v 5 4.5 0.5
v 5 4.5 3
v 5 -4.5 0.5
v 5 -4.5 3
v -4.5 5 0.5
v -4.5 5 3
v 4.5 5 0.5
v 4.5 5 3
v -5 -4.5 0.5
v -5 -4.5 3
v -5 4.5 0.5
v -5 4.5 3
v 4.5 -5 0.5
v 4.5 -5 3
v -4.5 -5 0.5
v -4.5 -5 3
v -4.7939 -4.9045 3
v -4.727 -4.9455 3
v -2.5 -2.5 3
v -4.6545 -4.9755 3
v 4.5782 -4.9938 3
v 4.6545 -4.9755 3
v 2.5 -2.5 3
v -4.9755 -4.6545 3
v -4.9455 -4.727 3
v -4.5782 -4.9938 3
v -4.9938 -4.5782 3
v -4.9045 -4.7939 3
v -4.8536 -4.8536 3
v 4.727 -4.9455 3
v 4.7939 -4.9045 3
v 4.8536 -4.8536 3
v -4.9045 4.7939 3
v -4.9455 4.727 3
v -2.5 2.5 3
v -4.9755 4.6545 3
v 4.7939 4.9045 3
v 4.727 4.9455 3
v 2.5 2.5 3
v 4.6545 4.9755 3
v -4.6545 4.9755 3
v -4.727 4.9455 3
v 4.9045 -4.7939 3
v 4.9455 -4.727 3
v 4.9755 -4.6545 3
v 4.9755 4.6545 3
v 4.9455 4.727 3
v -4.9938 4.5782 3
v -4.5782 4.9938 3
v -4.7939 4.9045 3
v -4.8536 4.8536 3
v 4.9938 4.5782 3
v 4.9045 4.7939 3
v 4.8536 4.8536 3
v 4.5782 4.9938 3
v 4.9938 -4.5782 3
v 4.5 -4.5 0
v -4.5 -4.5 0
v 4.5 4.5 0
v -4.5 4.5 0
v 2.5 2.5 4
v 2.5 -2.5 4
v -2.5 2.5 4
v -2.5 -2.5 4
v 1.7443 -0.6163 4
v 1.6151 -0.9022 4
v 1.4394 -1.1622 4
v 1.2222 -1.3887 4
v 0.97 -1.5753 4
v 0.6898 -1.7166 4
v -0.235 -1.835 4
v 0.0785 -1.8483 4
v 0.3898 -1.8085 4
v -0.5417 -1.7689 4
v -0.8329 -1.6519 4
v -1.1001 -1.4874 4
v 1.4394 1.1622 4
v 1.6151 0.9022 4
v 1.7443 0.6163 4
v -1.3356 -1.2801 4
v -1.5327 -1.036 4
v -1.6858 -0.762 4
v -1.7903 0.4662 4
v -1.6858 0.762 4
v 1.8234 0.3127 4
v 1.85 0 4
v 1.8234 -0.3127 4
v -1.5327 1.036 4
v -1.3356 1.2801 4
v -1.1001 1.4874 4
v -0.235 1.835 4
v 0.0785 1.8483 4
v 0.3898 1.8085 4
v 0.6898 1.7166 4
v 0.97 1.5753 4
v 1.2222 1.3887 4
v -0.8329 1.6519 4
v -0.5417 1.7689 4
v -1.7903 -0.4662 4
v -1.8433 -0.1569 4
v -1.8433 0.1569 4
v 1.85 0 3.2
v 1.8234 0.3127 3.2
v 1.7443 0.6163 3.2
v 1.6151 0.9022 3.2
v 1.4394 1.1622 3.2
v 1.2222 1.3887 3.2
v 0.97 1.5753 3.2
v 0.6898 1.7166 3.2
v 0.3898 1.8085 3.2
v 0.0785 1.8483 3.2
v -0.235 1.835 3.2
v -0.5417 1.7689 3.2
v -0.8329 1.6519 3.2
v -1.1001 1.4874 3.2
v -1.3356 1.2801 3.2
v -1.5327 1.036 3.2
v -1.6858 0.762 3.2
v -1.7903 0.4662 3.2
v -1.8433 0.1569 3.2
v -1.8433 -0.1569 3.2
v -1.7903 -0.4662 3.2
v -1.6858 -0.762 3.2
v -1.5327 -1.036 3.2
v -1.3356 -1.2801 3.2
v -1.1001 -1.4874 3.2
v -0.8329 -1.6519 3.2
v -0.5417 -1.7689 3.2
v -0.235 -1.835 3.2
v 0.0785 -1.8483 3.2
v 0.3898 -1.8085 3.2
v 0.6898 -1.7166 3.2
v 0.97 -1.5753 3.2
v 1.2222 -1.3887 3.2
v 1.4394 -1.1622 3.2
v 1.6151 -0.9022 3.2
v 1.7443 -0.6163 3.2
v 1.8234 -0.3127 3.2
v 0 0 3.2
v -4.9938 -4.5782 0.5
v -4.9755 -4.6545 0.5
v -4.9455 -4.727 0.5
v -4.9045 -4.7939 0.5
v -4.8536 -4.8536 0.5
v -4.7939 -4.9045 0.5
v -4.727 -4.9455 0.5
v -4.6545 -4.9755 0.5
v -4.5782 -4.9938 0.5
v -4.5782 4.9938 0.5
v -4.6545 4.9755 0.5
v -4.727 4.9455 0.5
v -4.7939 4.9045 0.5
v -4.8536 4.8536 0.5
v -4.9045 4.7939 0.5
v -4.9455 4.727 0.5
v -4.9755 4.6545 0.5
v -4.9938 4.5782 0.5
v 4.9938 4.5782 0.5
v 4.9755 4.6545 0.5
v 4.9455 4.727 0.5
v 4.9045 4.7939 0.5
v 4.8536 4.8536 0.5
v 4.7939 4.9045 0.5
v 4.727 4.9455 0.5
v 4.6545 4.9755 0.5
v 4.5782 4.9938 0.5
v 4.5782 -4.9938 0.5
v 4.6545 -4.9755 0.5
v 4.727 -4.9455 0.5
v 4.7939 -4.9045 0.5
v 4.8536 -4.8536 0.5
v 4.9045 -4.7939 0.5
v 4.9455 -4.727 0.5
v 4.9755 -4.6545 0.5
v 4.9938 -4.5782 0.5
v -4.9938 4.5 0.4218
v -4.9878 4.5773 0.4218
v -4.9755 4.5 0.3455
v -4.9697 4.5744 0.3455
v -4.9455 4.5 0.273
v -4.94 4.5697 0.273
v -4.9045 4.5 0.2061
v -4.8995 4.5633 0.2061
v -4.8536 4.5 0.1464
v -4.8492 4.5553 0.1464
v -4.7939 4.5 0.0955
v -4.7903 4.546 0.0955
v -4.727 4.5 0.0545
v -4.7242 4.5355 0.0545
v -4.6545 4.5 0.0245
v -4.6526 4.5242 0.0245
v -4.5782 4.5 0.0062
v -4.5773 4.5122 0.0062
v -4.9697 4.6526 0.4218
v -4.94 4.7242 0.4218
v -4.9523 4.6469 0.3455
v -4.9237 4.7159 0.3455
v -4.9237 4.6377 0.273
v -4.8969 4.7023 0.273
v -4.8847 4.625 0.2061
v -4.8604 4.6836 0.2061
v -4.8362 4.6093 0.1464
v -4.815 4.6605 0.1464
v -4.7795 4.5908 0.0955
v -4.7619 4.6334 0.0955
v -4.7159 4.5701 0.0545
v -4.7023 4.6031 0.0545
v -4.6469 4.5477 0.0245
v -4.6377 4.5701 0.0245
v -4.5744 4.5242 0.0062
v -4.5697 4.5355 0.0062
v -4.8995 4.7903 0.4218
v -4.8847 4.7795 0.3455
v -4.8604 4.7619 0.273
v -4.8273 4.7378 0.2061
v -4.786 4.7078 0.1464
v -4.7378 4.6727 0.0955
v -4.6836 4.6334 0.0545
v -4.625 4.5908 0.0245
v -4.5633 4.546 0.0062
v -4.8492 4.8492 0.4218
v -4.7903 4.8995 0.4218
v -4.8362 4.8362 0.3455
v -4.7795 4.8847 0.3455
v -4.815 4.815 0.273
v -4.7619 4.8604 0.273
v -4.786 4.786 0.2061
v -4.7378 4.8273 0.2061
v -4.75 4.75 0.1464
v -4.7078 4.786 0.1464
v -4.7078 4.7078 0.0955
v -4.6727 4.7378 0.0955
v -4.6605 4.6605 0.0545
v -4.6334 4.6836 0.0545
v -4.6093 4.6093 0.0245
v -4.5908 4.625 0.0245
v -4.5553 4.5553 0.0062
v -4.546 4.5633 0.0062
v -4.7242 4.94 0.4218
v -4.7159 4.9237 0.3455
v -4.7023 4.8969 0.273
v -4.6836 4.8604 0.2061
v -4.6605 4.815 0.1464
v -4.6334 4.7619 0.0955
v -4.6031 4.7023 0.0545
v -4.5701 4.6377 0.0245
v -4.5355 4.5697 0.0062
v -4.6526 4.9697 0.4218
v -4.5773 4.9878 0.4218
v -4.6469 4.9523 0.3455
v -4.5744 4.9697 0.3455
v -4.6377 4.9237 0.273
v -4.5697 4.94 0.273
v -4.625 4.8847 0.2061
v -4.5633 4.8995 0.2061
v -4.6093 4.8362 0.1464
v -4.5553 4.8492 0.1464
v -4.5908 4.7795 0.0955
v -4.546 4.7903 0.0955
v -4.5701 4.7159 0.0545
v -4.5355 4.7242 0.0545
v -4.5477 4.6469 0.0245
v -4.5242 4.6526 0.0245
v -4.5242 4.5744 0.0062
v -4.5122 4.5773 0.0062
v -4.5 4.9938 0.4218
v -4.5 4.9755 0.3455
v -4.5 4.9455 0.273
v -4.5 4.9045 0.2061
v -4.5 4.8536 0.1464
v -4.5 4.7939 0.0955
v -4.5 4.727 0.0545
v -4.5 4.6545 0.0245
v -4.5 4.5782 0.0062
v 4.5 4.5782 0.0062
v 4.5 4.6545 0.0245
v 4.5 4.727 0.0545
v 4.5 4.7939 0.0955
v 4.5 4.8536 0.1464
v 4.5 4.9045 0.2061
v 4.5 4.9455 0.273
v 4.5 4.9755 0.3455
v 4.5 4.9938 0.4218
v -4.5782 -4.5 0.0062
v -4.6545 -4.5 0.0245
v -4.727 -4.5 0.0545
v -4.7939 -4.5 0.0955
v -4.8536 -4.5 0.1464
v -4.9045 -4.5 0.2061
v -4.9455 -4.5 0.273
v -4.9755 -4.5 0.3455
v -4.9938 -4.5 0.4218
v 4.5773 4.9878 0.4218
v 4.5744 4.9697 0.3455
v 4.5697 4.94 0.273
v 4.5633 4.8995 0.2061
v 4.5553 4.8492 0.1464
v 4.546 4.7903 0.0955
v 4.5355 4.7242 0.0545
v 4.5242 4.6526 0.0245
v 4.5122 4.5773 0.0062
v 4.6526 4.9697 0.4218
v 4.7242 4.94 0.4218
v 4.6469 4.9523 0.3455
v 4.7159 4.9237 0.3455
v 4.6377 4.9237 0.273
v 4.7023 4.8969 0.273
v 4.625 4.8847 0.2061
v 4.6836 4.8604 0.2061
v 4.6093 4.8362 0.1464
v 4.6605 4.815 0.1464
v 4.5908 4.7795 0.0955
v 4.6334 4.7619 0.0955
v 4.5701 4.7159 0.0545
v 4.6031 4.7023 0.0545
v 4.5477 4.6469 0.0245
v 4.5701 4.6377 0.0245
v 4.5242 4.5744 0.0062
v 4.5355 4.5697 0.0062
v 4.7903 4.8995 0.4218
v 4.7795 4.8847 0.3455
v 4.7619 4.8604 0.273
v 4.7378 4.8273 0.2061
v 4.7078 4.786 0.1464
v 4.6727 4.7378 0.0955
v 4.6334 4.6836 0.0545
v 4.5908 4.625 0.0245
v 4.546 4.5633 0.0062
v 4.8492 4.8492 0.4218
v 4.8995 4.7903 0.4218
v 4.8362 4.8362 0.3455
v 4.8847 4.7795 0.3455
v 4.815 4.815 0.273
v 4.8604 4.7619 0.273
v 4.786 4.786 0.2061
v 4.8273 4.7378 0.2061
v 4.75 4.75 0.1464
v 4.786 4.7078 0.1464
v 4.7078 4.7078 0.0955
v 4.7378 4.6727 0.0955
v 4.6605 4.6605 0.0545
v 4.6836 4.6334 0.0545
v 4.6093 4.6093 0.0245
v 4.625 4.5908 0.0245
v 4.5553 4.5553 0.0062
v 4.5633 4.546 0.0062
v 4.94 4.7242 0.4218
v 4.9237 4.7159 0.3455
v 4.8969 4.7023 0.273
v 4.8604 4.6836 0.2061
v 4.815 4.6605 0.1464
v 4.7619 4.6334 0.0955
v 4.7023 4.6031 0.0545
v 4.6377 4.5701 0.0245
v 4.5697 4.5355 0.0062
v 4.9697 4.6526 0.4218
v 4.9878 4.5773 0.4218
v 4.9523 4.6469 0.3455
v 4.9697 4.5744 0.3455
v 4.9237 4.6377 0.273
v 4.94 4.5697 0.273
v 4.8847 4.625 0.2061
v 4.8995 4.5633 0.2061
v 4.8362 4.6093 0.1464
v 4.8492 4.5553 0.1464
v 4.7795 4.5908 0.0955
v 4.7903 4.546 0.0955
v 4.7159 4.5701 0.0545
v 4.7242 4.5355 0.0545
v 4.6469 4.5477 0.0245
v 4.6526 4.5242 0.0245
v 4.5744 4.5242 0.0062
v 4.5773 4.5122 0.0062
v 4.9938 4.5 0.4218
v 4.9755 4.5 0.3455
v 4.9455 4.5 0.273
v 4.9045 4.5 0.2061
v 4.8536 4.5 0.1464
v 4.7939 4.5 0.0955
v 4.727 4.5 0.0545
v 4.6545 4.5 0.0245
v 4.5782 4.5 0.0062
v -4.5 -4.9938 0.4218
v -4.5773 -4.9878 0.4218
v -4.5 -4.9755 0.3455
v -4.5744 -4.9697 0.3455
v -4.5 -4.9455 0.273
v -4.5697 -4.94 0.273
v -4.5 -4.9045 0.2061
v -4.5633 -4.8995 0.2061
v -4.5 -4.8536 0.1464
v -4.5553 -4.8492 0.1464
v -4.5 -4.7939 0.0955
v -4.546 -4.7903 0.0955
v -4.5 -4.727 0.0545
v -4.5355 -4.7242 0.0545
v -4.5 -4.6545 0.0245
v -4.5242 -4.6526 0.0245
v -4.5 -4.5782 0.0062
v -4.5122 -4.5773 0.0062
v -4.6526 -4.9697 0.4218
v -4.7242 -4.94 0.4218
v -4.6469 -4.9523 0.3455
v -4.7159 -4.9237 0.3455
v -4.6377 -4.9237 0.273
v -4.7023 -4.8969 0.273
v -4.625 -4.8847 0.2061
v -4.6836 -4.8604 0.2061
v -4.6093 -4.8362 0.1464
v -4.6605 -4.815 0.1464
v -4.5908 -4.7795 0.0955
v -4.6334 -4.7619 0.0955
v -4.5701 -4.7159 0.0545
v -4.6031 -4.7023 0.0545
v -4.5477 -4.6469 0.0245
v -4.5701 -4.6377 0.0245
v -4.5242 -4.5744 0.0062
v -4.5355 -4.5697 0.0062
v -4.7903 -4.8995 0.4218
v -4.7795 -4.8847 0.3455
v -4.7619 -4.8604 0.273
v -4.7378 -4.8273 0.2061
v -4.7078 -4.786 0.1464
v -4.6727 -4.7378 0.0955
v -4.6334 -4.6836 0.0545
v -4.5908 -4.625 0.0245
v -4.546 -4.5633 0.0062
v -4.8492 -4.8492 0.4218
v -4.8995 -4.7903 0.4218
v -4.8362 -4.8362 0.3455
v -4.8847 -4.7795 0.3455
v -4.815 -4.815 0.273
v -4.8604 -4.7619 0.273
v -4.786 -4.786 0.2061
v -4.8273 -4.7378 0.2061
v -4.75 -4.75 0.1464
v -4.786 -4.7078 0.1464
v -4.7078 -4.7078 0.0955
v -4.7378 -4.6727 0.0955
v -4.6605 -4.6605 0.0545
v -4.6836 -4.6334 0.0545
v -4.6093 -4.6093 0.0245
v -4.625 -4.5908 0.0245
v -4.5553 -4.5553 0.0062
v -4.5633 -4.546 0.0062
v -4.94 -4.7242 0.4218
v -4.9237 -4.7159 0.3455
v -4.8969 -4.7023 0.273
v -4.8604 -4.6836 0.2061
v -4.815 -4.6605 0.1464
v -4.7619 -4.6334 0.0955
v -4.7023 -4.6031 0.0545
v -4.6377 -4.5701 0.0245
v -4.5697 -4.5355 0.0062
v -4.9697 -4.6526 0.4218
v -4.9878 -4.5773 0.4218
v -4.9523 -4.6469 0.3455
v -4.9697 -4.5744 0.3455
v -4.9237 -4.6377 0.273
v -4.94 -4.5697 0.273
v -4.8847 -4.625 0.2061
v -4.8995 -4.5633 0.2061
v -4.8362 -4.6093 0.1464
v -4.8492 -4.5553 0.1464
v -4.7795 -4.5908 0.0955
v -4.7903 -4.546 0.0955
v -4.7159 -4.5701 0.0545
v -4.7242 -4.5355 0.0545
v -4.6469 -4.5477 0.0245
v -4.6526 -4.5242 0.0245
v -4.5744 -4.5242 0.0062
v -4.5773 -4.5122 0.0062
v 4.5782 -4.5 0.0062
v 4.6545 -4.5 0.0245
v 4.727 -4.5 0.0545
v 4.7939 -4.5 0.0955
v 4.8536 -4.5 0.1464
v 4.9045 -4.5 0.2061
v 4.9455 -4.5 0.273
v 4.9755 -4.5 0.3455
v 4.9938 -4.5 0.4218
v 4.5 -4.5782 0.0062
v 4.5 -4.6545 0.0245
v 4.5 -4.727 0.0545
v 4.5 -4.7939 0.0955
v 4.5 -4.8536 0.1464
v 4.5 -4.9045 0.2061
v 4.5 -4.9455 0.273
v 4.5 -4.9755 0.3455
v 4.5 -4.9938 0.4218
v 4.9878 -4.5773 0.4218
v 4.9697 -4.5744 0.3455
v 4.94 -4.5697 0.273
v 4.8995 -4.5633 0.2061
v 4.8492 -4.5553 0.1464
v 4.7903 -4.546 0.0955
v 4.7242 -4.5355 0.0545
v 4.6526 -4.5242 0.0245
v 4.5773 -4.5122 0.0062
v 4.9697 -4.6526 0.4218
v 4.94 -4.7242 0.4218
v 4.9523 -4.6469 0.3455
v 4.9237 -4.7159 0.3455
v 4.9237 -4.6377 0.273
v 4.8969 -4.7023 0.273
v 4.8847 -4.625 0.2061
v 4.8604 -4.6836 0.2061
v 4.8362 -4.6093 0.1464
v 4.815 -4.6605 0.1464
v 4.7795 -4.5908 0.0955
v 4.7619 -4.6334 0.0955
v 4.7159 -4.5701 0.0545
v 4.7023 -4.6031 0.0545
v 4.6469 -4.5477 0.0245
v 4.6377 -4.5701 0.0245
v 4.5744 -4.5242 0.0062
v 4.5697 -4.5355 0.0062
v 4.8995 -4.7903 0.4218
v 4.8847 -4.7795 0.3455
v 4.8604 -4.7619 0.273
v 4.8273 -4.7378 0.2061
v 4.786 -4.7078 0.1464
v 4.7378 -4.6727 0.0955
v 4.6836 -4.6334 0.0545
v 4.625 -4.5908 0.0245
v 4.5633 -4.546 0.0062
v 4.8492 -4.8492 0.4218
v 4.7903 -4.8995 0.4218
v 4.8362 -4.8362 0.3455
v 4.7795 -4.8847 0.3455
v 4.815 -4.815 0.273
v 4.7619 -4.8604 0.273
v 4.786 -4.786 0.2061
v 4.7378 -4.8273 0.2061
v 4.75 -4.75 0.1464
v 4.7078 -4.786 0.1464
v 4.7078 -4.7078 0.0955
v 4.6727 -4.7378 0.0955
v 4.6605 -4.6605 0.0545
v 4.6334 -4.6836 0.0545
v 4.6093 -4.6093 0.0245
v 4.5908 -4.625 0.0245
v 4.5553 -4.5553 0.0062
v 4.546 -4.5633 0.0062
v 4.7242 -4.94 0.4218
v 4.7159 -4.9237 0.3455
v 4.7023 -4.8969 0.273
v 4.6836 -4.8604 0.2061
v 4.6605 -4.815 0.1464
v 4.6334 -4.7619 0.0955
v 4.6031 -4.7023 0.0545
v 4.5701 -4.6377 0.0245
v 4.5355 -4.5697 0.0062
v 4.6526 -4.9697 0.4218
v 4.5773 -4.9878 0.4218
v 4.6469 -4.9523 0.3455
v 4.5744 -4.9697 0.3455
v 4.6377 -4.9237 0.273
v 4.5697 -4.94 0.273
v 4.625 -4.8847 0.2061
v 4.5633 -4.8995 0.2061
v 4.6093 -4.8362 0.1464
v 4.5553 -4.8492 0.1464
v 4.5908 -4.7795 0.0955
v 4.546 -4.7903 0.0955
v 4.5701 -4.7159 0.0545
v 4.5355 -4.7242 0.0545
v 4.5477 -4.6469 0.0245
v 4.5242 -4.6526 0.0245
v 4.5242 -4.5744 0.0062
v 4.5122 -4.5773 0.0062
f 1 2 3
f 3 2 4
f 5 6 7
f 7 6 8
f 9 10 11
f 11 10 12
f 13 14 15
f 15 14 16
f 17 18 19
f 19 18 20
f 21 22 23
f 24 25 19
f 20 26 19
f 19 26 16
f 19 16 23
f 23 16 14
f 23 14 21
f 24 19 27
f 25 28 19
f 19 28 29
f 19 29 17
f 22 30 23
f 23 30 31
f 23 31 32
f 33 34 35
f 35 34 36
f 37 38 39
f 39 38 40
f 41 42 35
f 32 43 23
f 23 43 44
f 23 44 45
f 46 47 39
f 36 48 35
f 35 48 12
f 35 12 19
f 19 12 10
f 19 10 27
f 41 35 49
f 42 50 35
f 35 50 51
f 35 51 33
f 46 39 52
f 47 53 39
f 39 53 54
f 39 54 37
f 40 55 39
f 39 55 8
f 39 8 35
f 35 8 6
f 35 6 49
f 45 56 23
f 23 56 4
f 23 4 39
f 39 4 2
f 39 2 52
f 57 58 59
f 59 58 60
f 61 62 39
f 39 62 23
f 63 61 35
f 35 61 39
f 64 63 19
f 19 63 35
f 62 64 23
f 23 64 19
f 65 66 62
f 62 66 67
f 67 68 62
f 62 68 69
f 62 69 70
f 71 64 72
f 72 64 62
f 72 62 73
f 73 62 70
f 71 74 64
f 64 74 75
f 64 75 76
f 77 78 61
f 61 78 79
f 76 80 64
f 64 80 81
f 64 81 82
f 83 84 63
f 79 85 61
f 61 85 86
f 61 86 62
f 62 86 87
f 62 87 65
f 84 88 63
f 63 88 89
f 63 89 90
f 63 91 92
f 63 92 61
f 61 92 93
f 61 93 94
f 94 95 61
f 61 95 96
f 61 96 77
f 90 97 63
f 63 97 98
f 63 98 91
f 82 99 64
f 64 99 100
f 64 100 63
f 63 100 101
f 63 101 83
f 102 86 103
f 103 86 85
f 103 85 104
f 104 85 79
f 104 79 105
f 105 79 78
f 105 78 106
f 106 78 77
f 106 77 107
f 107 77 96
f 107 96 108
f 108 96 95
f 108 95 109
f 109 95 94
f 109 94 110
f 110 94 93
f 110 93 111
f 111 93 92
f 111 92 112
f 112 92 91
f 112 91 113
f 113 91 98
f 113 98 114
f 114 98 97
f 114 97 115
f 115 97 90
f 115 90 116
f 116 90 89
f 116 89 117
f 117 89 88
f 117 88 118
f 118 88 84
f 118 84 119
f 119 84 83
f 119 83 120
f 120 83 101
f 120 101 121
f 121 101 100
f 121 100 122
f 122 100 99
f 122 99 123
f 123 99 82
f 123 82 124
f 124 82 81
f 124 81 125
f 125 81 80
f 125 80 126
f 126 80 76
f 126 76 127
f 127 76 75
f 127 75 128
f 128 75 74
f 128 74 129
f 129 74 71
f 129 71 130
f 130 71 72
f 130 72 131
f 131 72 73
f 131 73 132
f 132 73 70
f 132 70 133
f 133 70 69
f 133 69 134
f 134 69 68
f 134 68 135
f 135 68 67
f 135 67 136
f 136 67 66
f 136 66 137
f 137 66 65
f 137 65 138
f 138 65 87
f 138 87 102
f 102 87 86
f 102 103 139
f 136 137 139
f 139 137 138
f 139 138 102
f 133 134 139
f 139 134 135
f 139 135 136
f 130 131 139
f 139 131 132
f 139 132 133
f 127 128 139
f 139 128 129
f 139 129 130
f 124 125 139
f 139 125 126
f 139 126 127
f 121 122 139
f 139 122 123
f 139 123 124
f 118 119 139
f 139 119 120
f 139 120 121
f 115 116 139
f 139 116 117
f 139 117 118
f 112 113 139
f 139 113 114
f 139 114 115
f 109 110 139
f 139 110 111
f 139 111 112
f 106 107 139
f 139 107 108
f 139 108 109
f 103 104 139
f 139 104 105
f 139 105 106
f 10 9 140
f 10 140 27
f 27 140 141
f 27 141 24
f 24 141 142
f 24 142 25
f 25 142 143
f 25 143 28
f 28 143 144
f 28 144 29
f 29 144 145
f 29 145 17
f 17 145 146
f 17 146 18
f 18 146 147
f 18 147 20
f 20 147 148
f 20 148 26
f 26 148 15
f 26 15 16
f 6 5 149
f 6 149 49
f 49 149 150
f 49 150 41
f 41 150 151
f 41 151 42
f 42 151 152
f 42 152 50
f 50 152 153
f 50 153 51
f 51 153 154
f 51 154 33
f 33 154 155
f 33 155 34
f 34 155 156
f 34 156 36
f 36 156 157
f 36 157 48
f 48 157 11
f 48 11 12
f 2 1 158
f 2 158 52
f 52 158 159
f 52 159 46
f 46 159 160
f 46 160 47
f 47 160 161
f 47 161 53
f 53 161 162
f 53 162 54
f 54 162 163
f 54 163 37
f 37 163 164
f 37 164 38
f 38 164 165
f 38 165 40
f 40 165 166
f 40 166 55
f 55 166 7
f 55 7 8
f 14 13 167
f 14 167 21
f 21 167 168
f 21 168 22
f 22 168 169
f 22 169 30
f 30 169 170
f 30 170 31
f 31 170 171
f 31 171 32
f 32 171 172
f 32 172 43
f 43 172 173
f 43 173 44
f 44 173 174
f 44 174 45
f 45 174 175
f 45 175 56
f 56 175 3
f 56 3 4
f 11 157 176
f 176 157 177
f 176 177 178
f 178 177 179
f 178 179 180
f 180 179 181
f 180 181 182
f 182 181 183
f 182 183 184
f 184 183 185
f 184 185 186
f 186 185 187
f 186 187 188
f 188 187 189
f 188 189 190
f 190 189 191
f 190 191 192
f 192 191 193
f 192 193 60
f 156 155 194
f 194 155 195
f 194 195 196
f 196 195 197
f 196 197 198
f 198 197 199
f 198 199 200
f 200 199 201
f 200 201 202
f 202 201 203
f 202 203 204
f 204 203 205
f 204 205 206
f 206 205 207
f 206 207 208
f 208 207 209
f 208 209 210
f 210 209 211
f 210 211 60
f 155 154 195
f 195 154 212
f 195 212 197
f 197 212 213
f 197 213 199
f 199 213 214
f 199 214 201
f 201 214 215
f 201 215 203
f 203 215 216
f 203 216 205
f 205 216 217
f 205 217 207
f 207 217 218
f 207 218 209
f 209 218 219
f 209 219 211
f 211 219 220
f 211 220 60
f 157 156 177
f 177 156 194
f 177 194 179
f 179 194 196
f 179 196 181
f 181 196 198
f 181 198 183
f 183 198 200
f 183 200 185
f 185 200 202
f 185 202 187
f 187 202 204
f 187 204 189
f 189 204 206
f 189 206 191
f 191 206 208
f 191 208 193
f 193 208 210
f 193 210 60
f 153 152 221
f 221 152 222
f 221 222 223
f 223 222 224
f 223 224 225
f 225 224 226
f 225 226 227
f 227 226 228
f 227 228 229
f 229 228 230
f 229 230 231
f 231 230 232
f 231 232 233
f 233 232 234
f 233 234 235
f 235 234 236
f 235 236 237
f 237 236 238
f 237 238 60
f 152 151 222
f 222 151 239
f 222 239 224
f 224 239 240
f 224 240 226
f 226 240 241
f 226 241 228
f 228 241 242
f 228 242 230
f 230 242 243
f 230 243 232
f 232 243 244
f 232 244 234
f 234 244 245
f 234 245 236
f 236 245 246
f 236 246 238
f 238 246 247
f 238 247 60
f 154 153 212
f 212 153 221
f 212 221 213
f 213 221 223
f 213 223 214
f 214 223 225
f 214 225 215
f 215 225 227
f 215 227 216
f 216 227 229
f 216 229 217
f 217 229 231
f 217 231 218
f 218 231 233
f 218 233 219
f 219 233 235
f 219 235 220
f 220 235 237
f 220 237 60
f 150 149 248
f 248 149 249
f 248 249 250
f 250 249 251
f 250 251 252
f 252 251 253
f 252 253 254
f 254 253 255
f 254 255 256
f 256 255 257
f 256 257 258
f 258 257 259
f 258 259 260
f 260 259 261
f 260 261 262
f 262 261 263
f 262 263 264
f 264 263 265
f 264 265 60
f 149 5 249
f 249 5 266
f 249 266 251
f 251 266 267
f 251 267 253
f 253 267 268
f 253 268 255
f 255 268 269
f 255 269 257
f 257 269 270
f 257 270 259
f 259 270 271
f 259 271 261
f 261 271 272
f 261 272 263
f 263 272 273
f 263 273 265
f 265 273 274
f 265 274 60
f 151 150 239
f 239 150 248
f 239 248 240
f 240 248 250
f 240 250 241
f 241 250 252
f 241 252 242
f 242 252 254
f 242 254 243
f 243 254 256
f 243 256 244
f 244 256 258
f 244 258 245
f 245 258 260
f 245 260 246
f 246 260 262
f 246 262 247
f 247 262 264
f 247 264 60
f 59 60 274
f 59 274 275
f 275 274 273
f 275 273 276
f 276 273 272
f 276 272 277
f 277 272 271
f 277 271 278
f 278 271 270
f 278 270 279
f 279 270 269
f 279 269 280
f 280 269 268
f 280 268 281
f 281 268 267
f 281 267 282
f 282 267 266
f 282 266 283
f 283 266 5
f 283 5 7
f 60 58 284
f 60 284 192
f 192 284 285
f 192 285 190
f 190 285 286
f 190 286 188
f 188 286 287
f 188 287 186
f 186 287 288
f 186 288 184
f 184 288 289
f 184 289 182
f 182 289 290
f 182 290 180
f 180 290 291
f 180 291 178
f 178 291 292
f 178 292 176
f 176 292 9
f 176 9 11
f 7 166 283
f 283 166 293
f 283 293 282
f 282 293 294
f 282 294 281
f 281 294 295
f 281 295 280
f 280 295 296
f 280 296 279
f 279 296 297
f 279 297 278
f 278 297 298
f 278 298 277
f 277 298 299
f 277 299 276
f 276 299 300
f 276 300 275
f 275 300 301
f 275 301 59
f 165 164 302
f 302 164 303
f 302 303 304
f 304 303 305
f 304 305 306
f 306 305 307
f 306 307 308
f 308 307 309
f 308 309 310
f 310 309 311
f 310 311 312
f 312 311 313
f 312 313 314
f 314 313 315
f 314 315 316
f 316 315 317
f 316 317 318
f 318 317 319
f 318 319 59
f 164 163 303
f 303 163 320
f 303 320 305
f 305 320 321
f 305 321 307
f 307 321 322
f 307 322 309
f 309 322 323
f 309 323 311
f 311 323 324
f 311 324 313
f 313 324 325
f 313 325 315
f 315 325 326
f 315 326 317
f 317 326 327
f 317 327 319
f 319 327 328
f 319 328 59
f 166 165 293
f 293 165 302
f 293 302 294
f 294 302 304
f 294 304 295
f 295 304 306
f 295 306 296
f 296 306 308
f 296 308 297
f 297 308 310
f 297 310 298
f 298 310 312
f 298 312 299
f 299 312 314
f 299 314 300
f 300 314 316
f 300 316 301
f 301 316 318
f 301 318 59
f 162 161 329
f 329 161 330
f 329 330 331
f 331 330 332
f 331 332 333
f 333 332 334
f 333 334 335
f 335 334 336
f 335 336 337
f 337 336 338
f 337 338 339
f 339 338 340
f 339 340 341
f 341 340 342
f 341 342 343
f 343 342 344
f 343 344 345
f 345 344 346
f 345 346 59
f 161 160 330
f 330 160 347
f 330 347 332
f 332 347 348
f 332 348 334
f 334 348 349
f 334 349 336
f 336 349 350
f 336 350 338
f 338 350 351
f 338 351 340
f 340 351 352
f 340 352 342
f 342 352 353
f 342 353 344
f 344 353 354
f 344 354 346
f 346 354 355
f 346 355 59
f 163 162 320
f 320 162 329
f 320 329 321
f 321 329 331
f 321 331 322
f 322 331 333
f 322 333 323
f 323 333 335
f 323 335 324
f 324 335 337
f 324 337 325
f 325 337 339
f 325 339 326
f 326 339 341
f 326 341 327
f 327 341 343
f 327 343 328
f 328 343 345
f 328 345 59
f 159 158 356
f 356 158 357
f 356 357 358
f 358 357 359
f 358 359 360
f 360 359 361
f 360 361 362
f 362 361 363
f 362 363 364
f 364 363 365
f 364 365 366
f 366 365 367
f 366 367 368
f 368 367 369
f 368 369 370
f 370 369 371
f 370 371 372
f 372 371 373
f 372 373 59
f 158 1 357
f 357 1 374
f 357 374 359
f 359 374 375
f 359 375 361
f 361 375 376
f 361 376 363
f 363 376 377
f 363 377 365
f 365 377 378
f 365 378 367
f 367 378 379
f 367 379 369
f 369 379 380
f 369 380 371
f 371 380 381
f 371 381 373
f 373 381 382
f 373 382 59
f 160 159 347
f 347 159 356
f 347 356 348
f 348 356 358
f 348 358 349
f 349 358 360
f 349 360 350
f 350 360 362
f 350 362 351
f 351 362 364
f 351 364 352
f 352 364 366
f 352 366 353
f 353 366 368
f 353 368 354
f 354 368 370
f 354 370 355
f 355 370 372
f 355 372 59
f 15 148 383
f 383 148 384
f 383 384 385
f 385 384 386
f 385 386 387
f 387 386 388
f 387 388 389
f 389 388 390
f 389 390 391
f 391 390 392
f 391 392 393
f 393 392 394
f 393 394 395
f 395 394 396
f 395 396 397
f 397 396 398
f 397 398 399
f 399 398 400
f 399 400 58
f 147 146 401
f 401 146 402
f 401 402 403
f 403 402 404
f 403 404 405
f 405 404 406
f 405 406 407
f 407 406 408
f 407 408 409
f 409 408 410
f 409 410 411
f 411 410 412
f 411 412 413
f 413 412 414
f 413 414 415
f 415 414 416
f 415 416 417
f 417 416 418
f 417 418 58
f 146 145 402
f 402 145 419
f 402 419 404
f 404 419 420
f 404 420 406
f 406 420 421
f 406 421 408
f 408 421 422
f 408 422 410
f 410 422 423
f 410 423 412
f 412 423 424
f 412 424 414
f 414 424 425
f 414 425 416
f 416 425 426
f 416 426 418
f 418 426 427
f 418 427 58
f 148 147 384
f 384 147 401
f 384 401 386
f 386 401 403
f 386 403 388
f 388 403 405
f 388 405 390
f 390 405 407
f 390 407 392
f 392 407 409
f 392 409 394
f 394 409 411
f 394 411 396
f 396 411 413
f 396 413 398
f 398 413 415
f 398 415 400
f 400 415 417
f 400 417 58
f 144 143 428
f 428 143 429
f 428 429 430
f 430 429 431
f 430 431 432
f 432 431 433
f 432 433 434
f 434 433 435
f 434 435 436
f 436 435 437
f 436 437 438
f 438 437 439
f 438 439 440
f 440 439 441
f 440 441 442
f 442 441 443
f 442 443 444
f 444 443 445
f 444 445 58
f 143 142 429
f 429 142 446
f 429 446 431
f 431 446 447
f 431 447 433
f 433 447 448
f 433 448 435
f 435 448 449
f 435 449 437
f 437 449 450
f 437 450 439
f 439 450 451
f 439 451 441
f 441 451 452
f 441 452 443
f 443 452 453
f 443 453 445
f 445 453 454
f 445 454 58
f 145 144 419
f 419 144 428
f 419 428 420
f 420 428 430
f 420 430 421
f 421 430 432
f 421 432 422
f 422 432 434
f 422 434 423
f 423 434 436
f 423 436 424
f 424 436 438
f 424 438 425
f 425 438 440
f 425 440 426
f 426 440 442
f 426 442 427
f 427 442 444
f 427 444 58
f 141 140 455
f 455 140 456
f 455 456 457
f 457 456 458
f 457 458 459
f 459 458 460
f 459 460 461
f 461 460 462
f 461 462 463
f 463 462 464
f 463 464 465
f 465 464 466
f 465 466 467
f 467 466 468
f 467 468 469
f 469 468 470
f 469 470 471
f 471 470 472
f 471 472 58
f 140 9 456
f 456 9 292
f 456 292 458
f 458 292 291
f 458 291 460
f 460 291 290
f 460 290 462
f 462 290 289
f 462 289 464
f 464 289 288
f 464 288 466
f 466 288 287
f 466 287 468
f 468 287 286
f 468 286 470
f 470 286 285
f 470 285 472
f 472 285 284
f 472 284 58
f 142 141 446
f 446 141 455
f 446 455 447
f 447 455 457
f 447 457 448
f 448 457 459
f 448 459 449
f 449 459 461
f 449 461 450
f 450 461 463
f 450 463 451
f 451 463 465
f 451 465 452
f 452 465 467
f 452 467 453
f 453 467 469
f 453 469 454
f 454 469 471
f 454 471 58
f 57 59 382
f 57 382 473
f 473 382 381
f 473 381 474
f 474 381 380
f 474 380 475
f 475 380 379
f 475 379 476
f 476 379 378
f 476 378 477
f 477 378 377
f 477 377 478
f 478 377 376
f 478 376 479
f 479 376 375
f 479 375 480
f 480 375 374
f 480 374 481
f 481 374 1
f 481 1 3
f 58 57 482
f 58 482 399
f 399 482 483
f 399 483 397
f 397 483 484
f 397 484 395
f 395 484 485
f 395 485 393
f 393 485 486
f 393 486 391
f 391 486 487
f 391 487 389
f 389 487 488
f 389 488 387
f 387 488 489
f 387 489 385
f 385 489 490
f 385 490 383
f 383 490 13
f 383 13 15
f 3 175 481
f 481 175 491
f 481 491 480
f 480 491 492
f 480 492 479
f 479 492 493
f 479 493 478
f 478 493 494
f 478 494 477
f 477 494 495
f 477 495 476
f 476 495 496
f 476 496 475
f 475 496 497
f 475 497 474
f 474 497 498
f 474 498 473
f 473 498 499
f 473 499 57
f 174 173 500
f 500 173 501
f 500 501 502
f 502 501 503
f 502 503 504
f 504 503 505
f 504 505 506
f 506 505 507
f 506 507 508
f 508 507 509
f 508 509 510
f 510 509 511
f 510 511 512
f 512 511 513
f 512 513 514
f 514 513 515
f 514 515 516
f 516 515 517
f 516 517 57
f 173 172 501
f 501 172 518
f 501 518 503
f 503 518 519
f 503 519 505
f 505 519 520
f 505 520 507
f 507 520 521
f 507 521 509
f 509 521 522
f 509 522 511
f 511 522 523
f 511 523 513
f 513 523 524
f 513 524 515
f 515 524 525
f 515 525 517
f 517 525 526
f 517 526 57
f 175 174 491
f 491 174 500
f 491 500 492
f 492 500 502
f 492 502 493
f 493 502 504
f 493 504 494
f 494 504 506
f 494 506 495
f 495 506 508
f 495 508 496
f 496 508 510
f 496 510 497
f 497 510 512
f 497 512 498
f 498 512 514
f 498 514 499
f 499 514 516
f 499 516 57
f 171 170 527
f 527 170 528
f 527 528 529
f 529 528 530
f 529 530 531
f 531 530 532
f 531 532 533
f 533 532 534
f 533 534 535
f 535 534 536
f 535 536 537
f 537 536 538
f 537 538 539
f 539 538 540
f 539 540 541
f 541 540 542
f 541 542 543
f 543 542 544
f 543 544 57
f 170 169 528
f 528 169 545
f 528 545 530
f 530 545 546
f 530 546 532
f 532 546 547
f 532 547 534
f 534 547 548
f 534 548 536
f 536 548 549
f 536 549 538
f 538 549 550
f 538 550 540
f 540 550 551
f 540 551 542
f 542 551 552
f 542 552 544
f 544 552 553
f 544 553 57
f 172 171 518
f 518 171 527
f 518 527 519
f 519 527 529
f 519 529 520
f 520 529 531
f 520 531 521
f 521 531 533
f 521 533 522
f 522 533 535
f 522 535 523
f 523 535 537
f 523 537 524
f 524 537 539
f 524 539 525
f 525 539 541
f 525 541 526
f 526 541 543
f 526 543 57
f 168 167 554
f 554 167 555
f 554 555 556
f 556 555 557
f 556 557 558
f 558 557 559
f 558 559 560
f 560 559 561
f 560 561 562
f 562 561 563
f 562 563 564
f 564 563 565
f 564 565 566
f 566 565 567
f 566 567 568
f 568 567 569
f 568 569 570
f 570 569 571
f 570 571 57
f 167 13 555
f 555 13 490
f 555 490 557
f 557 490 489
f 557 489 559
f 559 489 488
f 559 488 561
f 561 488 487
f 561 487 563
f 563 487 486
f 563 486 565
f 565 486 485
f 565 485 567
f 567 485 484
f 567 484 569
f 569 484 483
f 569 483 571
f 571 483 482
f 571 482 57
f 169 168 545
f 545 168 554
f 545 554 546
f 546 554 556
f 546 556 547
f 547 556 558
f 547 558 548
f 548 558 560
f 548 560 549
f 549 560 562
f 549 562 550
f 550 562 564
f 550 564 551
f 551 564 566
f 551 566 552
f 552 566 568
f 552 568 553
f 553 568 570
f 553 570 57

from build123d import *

# Parameters (mm, degrees)
SKETCH1_W           = 10
SKETCH1_H           = 10
BOSS_EXTRUDE1_DEPTH = 3
SKETCH2_W           = 5
SKETCH2_H           = 5
BOSS_EXTRUDE2_DEPTH = 1
SKETCH3_R           = 1.85
CUT_EXTRUDE1_DEPTH  = 0.8
FILLET1_R           = 0.5
FILLET2_R           = 0.5


with BuildPart() as part:
    # Sketch1 → Boss-Extrude1 (new body)
    with BuildSketch(Plane.XY):
        Rectangle(SKETCH1_W, SKETCH1_H)
    extrude(amount=BOSS_EXTRUDE1_DEPTH)

    # Sketch2 → Boss-Extrude2 (add)
    with BuildSketch(Plane.XY.offset(3)):
        Rectangle(SKETCH2_W, SKETCH2_H)
    extrude(amount=BOSS_EXTRUDE2_DEPTH)

    # Sketch3 → Cut-Extrude1 (cut)
    with BuildSketch(Plane.XY.offset(4)):
        Circle(SKETCH3_R)
    extrude(amount=-CUT_EXTRUDE1_DEPTH, mode=Mode.SUBTRACT)

    # Fillet1
    fillet1_edges = [part.edges().sort_by_distance(p)[0] for p in [
        (5, -5, 1.5),
        (-5, -5, 1.5),
        (-5, 5, 1.5),
        (5, 5, 1.5),
    ]]
    fillet(fillet1_edges, radius=FILLET1_R)

    # Fillet2
    fillet2_edges = [part.edges().sort_by_distance(p)[0] for p in [
        (0, -5, 0),
        (5, 0, 0),
        (-5, 0, 0),
        (0, 5, 0),
        (4.853553391, -4.853553391, 0),
        (4.853553391, 4.853553391, 0),
        (-4.853553391, 4.853553391, 0),
        (-4.853553391, -4.853553391, 0),
    ]]
    fillet(fillet2_edges, radius=FILLET2_R)


solid = part.part
